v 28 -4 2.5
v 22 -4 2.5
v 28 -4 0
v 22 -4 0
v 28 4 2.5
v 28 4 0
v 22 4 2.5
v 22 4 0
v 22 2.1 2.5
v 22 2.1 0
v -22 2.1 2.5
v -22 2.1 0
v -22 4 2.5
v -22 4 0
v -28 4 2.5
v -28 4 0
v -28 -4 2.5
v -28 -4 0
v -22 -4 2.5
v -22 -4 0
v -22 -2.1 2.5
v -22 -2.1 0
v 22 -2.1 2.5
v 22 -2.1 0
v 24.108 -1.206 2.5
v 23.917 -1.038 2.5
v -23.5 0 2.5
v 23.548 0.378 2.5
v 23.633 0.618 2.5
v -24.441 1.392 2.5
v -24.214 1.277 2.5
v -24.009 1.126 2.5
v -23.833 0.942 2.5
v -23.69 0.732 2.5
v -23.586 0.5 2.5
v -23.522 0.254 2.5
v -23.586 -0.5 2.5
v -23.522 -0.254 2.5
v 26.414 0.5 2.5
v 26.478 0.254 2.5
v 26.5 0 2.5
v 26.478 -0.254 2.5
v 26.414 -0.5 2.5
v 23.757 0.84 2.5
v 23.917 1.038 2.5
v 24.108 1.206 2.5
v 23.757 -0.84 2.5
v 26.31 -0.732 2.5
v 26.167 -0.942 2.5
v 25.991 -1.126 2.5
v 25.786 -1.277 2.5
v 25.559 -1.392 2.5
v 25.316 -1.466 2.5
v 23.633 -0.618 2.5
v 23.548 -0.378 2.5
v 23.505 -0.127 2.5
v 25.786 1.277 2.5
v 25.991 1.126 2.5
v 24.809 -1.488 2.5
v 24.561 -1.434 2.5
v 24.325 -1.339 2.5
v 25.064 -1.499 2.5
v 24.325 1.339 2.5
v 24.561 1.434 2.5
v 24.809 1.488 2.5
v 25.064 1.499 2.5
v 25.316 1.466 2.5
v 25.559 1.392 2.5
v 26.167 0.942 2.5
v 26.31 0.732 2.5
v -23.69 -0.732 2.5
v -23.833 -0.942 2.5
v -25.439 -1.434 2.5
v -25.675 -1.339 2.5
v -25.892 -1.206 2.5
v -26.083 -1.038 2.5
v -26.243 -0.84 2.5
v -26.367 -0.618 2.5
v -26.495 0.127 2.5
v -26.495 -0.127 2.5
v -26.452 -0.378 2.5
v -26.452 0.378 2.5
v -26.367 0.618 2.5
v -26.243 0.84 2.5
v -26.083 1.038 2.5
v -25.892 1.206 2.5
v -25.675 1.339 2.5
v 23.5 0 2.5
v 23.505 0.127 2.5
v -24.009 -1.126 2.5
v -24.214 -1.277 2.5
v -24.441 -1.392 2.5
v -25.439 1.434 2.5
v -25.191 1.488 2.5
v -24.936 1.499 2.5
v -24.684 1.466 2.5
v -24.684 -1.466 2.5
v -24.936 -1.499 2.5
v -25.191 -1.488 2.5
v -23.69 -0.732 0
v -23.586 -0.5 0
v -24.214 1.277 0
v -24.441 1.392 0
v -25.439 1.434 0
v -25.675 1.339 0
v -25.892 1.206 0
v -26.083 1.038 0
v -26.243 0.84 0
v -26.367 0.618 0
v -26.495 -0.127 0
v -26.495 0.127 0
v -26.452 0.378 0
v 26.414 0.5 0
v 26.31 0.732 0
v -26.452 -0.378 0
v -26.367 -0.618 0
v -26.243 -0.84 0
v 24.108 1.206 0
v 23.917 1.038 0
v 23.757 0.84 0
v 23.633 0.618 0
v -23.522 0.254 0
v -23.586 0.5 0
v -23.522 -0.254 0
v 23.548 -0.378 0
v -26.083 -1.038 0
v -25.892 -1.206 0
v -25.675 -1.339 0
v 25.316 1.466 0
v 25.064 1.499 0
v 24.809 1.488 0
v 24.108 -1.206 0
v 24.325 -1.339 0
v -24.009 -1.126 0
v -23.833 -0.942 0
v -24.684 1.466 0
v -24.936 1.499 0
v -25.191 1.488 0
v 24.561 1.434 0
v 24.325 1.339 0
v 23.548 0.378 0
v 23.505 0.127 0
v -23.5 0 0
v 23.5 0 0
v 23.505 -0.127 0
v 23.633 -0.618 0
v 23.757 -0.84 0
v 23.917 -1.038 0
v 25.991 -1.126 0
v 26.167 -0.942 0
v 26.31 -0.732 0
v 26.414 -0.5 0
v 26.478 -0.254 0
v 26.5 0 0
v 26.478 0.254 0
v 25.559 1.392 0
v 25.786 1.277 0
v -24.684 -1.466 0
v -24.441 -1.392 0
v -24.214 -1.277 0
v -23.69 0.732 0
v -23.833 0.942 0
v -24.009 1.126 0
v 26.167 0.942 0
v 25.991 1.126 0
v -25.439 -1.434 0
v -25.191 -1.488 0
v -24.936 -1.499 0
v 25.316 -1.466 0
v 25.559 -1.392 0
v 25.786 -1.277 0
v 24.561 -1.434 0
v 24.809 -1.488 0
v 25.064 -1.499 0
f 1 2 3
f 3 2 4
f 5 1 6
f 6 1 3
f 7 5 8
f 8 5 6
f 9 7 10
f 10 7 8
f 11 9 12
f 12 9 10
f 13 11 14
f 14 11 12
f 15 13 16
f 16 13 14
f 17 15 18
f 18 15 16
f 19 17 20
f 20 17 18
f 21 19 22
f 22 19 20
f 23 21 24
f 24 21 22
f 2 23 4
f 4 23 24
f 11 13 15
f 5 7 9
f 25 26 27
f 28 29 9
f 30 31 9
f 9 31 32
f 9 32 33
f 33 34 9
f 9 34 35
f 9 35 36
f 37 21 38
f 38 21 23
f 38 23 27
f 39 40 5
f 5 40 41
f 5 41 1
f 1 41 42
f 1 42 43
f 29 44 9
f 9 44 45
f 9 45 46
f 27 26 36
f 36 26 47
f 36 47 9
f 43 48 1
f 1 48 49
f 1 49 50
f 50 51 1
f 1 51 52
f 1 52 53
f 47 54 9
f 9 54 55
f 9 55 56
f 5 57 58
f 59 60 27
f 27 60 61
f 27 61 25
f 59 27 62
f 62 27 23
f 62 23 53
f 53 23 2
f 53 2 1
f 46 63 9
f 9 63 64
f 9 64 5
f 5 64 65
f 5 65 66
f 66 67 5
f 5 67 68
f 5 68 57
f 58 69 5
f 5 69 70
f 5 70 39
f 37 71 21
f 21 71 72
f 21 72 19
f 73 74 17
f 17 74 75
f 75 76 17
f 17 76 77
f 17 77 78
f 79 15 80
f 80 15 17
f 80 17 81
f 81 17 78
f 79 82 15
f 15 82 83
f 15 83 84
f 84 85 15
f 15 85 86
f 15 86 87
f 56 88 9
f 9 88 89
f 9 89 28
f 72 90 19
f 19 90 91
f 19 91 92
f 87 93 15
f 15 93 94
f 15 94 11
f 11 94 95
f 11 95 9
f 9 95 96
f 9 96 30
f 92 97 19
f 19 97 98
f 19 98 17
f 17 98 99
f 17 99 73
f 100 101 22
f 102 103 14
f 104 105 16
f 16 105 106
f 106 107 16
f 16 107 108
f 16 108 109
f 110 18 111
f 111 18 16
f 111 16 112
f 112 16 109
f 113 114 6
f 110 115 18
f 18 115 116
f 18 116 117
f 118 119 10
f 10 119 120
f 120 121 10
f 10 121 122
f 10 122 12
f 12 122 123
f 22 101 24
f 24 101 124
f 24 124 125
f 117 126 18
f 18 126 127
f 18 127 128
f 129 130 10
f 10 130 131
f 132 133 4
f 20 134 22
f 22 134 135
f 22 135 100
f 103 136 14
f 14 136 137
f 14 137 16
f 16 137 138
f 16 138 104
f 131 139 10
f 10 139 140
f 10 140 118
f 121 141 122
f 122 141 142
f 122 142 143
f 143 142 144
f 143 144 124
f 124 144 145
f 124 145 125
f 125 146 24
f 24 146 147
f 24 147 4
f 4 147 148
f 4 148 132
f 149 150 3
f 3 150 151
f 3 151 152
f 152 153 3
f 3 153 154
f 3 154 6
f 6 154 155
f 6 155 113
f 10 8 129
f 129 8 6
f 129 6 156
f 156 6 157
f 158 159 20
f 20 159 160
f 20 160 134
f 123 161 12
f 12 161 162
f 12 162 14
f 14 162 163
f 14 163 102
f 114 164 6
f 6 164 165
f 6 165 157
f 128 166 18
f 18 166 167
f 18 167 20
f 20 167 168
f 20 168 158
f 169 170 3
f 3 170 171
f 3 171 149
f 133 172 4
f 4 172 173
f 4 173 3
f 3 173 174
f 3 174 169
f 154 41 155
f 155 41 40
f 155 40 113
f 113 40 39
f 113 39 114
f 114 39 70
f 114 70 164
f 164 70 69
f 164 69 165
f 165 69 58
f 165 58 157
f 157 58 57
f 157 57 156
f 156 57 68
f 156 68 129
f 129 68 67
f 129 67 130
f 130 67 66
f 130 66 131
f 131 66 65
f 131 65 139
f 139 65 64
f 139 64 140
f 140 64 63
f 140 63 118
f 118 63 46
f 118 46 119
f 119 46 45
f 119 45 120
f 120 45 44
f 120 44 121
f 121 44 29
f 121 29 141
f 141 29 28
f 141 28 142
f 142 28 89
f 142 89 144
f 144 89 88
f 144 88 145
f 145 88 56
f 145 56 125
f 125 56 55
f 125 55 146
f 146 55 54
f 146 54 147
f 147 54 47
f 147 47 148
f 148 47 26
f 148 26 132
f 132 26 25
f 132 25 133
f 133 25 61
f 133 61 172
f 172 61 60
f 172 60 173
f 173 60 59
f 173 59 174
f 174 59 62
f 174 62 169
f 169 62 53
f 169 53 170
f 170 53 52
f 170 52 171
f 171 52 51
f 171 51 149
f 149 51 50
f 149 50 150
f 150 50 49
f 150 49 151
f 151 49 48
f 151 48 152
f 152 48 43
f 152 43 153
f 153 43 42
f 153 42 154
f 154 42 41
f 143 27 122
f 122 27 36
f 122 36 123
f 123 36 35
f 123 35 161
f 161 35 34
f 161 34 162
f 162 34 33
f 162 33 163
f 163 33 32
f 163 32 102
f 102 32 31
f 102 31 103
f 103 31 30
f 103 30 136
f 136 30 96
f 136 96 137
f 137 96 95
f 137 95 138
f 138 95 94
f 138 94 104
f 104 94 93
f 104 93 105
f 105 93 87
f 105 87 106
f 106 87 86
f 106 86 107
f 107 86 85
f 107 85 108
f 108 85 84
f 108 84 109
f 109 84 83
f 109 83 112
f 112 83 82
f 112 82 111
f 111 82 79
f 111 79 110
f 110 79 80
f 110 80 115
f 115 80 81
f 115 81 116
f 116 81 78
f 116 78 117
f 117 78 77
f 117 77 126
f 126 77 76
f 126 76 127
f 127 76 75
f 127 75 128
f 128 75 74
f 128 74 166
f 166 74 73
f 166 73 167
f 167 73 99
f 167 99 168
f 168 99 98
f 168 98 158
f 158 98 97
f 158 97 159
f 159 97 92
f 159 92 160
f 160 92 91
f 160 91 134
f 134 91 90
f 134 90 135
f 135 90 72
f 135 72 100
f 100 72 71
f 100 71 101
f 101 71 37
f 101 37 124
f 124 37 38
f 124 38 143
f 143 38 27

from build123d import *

# Parameters (mm, degrees)
EXTRUDE_1_DEPTH     = 2.5
SKETCH_2_R          = 1.5
CUT_EXTRUDE_1_DEPTH = 2.5


with BuildPart() as part:
    # Эскиз1 → Бобышка-Вытянуть1 (new body)
    with BuildSketch(Plane.XY):
        Polygon((-28, 4), (-22, 4), (-22, 2.1), (22, 2.1), (22, 4), (28, 4), (28, -4), (22, -4), (22, -2.1), (-22, -2.1), (-22, -4), (-28, -4), align=None)
    extrude(amount=EXTRUDE_1_DEPTH)

    # Эскиз2 → Вырез-Вытянуть1 (cut)
    with BuildSketch(Plane.XY.offset(2.5)):
        with Locations((-25, 0)):
            Circle(SKETCH_2_R)
        with Locations(Location((25, 0, 0), (0, 0, 180))):
            Circle(SKETCH_2_R)
    extrude(amount=-CUT_EXTRUDE_1_DEPTH, mode=Mode.SUBTRACT)


solid = part.part
